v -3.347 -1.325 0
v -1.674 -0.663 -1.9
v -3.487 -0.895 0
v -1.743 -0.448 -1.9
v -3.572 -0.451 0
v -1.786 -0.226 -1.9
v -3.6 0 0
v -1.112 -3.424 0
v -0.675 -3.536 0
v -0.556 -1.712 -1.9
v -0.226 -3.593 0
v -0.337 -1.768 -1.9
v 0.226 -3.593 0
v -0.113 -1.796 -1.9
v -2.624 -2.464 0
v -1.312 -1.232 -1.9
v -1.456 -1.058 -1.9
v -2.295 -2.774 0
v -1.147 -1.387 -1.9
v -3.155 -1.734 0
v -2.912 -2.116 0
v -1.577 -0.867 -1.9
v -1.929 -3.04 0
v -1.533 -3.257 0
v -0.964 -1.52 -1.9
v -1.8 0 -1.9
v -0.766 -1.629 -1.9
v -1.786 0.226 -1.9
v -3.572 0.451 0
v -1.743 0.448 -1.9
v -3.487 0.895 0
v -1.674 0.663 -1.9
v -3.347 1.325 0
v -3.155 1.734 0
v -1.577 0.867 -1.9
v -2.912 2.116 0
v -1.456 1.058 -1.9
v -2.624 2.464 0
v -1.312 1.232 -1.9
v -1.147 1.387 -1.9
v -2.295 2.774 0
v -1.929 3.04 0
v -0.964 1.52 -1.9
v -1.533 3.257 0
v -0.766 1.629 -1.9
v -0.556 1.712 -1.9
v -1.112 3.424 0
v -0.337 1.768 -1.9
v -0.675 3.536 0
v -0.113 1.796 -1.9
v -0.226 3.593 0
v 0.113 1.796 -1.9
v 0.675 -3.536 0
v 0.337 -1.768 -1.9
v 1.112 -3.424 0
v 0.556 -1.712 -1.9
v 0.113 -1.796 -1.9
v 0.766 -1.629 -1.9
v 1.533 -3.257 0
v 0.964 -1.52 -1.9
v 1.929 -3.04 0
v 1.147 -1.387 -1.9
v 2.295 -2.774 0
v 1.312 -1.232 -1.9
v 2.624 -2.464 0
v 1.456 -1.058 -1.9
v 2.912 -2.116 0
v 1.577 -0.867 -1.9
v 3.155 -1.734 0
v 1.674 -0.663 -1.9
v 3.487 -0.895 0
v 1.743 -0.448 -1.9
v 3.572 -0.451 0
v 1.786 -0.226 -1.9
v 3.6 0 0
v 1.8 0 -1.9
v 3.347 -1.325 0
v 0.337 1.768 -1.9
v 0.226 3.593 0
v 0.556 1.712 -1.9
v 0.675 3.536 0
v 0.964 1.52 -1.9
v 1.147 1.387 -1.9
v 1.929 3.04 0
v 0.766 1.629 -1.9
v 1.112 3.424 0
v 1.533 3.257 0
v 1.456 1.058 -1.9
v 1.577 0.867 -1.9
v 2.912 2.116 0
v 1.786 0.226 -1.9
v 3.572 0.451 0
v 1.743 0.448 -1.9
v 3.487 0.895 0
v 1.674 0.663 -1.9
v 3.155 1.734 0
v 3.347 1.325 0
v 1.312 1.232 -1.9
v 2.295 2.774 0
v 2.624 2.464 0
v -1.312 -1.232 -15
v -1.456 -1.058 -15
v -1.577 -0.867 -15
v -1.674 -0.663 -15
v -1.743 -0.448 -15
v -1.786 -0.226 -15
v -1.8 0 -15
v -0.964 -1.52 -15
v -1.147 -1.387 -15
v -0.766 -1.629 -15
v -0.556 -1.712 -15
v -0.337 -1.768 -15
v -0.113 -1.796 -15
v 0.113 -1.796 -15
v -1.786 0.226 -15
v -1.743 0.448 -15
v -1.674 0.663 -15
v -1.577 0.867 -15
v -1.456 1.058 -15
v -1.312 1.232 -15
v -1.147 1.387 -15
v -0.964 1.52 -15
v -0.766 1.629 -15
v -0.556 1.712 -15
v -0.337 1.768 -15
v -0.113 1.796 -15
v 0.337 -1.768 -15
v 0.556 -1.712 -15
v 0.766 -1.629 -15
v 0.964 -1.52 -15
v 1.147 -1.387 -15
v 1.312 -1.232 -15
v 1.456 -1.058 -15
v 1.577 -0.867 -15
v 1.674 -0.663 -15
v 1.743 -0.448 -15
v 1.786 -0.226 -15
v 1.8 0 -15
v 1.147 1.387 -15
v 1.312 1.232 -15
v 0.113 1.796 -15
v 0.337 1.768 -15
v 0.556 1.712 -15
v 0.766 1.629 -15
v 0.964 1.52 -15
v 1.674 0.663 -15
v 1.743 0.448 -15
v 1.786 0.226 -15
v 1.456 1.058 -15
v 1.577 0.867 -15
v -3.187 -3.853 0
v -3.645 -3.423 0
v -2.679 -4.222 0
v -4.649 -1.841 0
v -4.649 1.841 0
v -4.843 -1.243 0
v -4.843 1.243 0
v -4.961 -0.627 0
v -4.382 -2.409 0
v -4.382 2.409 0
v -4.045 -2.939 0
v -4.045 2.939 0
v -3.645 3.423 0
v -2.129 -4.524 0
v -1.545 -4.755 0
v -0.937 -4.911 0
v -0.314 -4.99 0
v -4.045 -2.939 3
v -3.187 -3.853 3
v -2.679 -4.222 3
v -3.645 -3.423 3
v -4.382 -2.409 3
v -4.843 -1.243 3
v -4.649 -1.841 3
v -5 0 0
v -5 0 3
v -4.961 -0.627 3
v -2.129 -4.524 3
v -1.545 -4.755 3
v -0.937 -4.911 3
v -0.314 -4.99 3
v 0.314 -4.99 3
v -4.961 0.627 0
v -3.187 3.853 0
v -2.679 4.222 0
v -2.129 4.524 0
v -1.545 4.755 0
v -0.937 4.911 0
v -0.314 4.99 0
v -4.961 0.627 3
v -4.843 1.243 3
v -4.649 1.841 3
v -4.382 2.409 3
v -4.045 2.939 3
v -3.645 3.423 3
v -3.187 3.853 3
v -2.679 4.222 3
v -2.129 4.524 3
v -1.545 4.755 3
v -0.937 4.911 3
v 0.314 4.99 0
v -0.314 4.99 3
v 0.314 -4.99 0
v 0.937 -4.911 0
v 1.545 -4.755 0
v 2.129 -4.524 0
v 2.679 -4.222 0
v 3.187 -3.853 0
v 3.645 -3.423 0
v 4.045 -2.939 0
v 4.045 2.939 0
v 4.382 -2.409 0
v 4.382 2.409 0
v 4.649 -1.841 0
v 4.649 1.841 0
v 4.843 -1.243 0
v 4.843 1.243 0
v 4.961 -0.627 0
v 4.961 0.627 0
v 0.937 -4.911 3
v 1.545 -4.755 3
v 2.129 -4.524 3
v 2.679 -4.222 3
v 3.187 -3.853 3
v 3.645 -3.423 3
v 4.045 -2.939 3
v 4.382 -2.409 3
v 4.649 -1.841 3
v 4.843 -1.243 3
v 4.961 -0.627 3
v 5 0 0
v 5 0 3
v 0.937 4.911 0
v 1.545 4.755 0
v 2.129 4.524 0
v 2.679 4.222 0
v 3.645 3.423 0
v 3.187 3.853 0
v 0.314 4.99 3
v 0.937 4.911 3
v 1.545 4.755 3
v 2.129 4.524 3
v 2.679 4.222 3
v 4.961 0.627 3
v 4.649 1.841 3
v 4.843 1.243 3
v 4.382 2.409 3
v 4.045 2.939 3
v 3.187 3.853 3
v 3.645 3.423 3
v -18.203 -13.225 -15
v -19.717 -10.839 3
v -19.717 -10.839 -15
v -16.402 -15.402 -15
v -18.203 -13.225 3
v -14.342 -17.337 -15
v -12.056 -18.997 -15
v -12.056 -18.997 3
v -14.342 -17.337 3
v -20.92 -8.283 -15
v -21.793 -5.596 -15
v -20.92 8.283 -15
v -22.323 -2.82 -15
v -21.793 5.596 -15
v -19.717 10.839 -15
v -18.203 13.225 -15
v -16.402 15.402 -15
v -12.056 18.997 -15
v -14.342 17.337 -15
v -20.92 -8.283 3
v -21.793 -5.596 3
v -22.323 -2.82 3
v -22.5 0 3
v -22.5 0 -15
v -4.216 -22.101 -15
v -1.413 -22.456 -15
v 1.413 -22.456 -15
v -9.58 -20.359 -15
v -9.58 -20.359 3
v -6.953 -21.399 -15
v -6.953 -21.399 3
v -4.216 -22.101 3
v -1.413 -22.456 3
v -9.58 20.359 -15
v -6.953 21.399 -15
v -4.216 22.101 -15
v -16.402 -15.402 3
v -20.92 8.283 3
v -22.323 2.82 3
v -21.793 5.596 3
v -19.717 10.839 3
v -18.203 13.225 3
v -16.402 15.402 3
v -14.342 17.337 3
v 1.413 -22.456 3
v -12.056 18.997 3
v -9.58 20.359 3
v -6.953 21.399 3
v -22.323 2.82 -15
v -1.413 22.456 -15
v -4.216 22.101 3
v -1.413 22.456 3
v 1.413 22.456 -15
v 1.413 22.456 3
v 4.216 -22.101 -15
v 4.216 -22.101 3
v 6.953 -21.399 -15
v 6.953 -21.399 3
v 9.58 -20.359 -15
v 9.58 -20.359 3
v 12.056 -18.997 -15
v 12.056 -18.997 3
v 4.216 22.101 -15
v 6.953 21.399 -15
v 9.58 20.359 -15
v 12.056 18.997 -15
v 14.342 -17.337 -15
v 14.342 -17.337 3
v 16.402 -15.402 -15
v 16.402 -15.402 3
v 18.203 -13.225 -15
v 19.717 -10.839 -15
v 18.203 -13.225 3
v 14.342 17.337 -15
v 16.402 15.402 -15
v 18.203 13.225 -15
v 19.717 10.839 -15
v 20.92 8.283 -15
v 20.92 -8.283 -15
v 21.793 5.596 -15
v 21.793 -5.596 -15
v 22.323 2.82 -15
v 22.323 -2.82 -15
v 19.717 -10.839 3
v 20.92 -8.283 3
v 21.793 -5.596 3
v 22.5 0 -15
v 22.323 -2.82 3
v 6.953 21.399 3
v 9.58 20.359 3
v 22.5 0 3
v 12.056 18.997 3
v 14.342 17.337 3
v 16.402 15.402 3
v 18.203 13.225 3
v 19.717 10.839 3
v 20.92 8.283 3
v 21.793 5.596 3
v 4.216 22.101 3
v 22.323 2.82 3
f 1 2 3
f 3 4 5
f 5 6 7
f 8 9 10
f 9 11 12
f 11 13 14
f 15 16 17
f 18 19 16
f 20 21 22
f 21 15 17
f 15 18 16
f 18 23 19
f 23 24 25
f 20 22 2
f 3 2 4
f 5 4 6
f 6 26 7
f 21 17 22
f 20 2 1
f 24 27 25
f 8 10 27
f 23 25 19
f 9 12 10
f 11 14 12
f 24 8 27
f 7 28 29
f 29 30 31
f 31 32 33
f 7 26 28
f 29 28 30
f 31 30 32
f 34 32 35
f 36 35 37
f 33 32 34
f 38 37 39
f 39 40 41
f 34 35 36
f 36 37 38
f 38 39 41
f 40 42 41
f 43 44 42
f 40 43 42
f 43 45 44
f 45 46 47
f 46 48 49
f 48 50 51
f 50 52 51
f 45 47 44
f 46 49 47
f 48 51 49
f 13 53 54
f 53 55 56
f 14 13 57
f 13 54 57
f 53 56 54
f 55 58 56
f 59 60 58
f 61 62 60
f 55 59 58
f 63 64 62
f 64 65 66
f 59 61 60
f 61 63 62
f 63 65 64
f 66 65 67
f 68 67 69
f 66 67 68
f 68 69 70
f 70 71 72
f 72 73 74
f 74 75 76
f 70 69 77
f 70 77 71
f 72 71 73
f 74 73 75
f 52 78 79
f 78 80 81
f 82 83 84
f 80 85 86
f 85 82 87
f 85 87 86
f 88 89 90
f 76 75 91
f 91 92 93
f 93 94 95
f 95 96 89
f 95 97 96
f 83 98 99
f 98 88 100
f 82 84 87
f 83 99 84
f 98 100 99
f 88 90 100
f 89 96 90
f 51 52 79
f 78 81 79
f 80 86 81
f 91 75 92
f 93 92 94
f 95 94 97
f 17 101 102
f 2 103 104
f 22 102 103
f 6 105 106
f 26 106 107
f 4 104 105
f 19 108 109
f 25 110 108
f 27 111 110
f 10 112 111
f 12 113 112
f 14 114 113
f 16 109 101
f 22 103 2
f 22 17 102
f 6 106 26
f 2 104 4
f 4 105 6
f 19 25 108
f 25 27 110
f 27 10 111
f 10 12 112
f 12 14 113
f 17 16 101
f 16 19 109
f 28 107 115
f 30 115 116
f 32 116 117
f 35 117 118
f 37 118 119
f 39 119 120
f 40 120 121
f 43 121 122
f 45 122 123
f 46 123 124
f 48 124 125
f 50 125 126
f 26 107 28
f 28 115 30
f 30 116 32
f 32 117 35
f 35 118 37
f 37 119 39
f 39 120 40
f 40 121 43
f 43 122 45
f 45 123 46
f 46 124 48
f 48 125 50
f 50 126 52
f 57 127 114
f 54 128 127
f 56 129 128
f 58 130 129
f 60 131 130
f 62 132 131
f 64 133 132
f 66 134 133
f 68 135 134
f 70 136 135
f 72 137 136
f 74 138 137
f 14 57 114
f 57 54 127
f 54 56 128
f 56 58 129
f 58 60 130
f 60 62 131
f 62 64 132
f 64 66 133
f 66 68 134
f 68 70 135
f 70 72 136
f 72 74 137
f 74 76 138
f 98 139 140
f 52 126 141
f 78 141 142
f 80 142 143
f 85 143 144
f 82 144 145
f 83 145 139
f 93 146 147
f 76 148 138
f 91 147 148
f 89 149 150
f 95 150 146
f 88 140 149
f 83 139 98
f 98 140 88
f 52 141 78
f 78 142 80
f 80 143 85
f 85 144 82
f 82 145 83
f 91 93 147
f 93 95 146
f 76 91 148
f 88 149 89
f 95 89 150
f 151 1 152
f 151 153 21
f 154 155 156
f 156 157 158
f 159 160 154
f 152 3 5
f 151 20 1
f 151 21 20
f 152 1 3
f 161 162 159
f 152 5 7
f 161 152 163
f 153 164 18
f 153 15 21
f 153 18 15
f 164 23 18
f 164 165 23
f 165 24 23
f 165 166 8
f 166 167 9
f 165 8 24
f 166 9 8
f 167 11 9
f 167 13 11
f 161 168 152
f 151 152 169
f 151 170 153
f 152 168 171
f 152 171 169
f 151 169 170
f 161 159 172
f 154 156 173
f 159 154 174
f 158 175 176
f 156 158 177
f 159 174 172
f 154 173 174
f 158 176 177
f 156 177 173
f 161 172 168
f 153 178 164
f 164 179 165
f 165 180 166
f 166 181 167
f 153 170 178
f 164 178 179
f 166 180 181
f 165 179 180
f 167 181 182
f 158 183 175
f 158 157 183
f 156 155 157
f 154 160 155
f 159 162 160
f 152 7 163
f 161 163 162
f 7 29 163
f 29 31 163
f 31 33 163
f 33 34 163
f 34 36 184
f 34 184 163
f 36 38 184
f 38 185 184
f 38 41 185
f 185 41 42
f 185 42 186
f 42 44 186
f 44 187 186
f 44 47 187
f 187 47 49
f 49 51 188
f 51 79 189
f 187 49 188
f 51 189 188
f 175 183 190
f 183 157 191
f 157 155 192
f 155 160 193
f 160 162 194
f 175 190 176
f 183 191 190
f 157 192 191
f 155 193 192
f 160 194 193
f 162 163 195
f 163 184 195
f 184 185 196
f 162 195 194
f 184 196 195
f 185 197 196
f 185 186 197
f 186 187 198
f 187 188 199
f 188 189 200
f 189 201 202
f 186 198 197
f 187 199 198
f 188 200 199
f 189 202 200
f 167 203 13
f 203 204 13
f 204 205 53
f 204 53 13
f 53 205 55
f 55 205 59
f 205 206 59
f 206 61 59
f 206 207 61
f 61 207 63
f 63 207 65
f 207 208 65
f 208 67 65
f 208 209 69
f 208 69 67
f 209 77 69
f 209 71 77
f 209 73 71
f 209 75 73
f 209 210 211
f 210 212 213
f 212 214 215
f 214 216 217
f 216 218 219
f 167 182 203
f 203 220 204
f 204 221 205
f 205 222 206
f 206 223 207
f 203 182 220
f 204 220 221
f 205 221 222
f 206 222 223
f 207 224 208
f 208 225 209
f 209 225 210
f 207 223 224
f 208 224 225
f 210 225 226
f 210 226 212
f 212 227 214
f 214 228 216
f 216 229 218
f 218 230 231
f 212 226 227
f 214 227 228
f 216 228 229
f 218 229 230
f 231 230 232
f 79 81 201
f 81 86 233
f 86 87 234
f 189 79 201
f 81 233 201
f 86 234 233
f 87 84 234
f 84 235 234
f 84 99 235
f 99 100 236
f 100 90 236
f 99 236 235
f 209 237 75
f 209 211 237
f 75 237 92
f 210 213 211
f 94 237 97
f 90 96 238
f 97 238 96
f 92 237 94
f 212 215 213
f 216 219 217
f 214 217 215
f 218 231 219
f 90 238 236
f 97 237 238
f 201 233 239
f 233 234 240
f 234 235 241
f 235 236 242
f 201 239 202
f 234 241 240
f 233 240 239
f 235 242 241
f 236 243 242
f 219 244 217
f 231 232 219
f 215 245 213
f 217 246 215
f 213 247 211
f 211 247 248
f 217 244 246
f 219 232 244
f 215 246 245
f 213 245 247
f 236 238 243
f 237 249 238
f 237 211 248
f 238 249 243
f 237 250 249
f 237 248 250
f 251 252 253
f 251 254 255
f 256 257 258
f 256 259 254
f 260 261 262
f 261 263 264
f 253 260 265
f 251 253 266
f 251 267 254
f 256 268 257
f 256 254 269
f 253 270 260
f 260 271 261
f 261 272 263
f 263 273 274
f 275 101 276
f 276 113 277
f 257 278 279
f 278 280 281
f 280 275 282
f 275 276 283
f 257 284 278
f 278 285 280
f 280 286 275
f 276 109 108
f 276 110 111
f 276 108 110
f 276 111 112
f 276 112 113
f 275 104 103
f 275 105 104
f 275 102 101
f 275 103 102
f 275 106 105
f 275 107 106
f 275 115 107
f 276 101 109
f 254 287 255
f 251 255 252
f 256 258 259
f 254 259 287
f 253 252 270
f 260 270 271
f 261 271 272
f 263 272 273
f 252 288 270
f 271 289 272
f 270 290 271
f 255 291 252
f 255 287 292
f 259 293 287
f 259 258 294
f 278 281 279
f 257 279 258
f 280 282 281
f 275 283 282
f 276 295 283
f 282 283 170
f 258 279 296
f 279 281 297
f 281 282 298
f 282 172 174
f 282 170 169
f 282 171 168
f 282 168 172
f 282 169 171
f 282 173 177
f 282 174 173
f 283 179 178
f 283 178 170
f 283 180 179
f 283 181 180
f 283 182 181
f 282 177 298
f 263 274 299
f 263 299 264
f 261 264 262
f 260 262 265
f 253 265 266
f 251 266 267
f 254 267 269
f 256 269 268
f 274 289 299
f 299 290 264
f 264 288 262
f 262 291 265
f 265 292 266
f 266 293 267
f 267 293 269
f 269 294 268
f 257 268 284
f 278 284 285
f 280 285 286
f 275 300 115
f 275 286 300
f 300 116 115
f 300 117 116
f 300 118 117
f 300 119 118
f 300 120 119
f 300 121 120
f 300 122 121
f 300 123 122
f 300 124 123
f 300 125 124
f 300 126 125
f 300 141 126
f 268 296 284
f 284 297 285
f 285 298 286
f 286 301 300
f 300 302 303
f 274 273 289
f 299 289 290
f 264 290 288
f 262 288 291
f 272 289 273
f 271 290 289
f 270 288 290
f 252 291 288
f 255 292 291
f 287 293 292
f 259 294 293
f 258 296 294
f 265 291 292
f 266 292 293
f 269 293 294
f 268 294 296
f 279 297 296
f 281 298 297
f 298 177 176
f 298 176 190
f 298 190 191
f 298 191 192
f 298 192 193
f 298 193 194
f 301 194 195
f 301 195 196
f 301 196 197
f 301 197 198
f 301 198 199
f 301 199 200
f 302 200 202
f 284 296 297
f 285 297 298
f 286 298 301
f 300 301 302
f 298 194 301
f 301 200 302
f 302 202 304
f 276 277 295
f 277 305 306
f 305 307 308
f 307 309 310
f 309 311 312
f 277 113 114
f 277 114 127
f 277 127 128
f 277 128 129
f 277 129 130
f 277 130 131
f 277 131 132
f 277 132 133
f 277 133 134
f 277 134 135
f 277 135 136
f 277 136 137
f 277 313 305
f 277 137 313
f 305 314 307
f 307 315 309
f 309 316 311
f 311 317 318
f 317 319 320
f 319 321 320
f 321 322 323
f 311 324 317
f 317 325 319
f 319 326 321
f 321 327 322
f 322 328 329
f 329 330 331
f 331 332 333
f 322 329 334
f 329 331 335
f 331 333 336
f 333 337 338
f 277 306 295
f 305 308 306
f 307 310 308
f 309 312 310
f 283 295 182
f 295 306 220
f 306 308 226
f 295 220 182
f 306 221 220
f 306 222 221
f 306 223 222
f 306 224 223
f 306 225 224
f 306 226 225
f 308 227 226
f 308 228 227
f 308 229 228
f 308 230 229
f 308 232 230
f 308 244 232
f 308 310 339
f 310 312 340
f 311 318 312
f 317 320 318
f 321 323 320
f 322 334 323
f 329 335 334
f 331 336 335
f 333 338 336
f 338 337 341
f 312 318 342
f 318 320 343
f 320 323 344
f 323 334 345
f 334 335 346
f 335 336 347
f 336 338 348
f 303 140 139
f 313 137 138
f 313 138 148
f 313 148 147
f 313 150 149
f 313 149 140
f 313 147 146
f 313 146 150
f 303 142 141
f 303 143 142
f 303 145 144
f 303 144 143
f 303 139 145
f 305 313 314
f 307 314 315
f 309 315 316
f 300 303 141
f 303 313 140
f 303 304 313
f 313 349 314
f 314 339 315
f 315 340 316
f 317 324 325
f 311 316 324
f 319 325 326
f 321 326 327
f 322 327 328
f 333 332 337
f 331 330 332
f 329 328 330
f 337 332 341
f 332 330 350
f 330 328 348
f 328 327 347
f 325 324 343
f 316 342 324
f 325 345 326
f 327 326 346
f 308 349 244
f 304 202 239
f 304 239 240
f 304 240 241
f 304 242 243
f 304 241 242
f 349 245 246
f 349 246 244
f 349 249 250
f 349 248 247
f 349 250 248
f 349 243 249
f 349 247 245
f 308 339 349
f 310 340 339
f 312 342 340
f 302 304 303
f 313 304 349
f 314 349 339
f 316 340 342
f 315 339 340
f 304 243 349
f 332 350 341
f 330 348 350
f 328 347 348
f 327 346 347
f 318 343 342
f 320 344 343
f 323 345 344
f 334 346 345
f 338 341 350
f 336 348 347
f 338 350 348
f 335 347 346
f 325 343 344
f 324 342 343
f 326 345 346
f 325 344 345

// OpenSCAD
$fn = 50;


difference() {
	union() {
		translate(v = [0, 0, -15.0000000000]) {
			cylinder(h = 18, r = 22.5000000000);
		}
	}
	union() {
		translate(v = [0, 0, 0]) {
			rotate(a = [0, 0, 0]) {
				difference() {
					union() {
						translate(v = [0, 0, -18.0000000000]) {
							cylinder(h = 18, r = 1.5000000000);
						}
						translate(v = [0, 0, -1.9000000000]) {
							cylinder(h = 1.9000000000, r1 = 1.8000000000, r2 = 3.6000000000);
						}
						translate(v = [0, 0, -18.0000000000]) {
							cylinder(h = 18, r = 1.8000000000);
						}
						translate(v = [0, 0, -18.0000000000]) {
							cylinder(h = 18, r = 1.5000000000);
						}
					}
					union();
				}
			}
		}
		#cylinder(h = 3, r = 5.0000000000);
	}
}
